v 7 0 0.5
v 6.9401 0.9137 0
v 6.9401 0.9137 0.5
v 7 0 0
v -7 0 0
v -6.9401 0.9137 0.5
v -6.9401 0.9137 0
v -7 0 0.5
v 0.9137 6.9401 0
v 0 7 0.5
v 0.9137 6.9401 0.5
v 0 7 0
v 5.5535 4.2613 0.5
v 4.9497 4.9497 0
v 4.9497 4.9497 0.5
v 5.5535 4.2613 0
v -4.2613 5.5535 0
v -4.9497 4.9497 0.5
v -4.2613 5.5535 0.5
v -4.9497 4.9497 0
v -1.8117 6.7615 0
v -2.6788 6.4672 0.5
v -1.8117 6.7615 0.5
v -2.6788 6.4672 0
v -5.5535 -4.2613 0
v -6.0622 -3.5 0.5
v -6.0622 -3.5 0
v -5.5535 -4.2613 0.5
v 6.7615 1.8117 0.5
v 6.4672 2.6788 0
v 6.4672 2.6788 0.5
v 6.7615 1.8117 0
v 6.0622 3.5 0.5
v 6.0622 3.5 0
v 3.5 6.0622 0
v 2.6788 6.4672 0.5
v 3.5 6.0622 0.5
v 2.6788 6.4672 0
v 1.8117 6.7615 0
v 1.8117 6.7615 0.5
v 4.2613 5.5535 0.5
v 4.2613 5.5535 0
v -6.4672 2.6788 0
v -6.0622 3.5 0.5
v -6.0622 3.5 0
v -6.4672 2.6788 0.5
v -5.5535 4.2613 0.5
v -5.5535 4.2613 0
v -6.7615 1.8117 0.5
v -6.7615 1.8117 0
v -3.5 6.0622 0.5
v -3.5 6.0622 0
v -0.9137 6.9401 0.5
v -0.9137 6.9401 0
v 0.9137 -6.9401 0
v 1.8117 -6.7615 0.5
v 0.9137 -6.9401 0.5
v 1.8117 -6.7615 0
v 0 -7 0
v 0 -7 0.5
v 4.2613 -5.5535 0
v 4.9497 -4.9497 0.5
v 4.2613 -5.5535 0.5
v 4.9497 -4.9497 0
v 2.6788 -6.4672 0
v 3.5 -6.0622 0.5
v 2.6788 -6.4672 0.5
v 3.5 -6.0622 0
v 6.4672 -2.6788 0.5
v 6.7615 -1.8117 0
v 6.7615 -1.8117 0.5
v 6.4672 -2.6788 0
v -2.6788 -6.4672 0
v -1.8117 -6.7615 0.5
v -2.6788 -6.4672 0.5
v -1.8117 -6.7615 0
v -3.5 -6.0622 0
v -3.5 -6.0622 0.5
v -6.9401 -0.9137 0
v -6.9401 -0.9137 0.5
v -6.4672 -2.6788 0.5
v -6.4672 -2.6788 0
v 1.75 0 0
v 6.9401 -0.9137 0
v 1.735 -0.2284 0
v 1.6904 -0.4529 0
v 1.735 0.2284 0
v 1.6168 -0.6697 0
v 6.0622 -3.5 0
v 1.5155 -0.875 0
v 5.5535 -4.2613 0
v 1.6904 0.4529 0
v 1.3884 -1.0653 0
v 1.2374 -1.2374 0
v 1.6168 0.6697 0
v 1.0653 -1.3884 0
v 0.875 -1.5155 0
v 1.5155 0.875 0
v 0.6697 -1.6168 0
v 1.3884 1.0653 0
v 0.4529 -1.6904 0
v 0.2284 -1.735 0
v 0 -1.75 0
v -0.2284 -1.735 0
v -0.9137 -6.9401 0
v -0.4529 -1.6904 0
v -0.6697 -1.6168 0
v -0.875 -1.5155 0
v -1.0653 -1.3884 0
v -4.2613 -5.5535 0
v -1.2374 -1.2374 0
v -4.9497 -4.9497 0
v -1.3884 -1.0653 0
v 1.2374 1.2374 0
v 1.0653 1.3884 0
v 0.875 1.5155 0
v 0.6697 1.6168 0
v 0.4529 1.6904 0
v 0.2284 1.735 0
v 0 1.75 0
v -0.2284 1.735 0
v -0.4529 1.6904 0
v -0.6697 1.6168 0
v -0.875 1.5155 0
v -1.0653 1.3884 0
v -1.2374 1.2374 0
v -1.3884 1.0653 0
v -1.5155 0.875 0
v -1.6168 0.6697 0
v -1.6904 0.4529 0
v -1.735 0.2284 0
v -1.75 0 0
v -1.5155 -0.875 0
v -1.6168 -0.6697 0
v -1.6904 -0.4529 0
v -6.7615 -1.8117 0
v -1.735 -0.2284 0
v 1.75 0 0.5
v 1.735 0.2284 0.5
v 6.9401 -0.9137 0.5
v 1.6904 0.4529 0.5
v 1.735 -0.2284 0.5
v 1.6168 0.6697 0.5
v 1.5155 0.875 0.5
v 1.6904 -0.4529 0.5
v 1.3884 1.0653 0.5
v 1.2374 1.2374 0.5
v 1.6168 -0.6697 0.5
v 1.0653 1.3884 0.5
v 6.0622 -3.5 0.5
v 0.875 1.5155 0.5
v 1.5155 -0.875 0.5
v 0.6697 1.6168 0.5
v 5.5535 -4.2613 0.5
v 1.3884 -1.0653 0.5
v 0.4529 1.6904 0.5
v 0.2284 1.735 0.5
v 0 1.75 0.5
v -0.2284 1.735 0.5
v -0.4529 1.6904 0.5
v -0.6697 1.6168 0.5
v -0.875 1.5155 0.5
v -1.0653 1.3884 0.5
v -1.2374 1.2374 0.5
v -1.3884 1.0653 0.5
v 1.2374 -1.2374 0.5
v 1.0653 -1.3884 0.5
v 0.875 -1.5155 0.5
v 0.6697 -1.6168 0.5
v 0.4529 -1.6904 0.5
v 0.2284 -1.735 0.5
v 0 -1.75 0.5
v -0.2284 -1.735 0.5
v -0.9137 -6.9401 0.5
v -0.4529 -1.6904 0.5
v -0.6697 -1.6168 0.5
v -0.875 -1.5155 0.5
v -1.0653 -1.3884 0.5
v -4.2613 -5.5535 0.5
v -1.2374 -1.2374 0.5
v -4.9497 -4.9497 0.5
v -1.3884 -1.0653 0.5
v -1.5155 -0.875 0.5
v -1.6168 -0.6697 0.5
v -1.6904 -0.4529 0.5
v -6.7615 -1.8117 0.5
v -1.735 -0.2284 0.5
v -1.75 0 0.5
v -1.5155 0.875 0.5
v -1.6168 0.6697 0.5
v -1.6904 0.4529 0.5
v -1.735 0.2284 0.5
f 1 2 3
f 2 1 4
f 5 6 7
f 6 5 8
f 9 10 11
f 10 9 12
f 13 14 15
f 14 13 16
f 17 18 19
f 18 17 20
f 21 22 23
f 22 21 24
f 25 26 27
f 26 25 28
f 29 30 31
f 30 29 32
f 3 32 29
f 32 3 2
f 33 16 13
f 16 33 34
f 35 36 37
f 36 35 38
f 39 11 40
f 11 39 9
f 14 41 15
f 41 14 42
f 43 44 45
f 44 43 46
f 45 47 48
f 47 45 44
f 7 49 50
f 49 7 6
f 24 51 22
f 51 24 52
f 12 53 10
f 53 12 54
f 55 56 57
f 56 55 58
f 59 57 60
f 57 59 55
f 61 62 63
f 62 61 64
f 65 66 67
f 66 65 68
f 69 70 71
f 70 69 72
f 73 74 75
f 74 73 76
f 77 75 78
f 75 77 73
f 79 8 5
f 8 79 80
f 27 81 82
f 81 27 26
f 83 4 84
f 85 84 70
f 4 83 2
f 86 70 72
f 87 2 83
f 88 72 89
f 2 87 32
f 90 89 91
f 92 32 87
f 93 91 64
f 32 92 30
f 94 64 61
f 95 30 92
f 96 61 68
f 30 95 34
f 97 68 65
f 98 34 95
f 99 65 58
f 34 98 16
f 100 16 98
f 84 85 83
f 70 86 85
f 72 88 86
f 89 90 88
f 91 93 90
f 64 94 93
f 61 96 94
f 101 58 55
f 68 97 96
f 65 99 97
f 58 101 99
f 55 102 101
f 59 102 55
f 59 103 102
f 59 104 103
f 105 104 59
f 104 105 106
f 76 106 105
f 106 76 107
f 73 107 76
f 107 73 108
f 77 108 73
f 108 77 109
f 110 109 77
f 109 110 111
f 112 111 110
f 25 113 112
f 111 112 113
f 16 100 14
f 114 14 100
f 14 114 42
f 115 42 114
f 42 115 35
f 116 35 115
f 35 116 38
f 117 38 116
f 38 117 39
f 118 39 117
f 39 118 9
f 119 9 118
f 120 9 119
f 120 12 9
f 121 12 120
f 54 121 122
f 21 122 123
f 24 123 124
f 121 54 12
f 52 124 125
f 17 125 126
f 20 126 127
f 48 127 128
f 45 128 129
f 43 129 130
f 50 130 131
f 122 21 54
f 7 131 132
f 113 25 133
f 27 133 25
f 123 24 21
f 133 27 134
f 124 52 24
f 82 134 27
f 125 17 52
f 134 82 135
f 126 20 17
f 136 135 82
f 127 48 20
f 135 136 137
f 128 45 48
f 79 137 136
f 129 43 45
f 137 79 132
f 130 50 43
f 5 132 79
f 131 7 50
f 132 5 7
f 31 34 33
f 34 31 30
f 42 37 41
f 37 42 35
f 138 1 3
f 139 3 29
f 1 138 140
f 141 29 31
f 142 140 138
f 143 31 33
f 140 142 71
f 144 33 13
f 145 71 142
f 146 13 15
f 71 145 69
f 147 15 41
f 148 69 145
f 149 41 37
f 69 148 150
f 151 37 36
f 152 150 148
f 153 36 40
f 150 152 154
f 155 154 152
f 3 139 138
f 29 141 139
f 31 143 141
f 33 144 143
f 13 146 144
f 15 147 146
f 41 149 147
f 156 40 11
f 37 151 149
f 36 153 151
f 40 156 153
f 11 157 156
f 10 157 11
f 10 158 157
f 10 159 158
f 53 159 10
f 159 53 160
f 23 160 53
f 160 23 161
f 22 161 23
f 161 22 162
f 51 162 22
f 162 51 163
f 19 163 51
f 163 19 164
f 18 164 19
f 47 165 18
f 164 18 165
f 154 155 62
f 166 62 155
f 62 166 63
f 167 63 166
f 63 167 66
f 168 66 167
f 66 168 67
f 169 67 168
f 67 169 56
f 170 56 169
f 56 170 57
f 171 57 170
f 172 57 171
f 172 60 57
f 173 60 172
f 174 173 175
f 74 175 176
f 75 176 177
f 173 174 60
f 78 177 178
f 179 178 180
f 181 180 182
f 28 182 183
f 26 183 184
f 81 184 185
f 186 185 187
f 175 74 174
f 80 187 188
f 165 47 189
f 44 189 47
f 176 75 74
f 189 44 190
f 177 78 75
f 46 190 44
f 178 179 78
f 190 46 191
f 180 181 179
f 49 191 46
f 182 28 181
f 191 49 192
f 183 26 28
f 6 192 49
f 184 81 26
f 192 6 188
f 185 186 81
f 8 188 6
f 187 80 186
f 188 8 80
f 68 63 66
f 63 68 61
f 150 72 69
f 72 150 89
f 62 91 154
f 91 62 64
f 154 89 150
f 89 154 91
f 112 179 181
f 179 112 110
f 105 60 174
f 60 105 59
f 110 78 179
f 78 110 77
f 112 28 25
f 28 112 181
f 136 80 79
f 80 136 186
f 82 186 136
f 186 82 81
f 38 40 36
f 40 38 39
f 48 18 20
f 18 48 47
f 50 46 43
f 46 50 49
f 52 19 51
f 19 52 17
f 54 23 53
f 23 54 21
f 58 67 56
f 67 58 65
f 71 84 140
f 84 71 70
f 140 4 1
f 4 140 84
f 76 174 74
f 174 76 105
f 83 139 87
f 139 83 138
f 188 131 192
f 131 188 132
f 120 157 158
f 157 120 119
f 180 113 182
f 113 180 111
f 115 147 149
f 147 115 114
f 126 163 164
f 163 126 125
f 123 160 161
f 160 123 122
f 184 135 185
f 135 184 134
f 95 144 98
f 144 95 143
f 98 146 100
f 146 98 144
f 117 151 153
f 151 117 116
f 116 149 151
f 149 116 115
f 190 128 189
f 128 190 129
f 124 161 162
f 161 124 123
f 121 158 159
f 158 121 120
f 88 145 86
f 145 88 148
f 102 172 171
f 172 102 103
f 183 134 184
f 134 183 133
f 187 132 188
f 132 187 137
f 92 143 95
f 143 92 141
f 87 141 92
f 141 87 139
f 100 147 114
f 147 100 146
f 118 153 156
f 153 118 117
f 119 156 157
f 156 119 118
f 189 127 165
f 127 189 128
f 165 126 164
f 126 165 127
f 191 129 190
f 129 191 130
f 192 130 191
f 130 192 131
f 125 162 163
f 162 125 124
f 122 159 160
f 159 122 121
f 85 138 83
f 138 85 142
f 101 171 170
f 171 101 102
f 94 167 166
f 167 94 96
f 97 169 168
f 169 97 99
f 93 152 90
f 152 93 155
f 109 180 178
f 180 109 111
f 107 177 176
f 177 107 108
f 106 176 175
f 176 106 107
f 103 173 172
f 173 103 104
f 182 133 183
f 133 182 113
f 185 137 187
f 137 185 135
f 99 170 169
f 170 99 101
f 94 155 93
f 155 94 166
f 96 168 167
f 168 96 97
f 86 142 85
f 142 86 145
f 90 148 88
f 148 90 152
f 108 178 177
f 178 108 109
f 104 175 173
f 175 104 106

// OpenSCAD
// file: parameters.scad
// =============================================================================
// Gen-BZ — nightly 2026-10-11 (physics_scorer, honest magpylib watts)
// Minimum-gap, wire-saver stator for the Gen-BX rotors: only 5.4 mm of copper (12 layers), so the magnet faces are just 8.0 mm apart and peak Bz at the copper reaches ≈0.64 T. It holds ~20 % less copper than Gen-BX (≈300 m, leaving ~90 m of the spool spare and much less winding), and loses only ≈5.5 % of the watts vs Gen-BX — the best watts-per-metre of wire tonight.
// Clocking 0 deg (magnets N facing S) + D-flat keyed bore + index notch + flip-symmetric hole map.
// Windable 2-piece bobbin; turns = physics_scorer turns_fit; copper only between flanges.
// Steel back-iron: 2× Ø168 × 4.76 mm (3/16") mild-steel discs (steel_backiron_disc.dxf); magnets sit ON the steel
// (through-pockets) -> score with --back-iron. Night 2026-10-11.
// =============================================================================
topology            = "dual_rotor";

// --- Wire / winding (physics_scorer winding-fit) -------------------------------
wire_awg            = 26;
wire_od             = 0.45;     // insulated OD mm (bare 0.405)
fill_realistic      = 0.65;     // insulated-wire area / window (DENSE layered wind with a jig; scorer cap 0.65)
turns               = 328;       // = physics_scorer turns_fit (do NOT raise)
coil_former_type    = "bobbin";
coil_core_inset     = 14.87;     // radial copper build: hub = copper boundary inset by this
wind_build_axial    = 0.0;      // nothing proud of the flanges
wind_build_radial   = 0.0;

// --- Bobbin (base + lid) ---------------------------------------------------------
coil_id_r           = 53.00;    // copper boundary sector
coil_od_r           = 88.00;
span_deg            = 26.43;    // = pitch - 2*asin((wall+0.85)/coil_id_r) -> >=1.2 mm stator web
former_web          = 5.40;     // copper height between flanges (TALL copper: steel keeps Bz up)
flange_t            = 0.80;     // >= 0.8 mm FDM wall rule (tall winds push on the flanges)
wall                = 0.80;     // flange lip beyond copper
former_bare_h       = former_web + 2 * flange_t;
coil_envelope_h     = former_bare_h + 2 * wind_build_axial;
tab_w               = 7.0;
tab_len             = 7.0;
tab_h               = former_bare_h / 2;
pin_d               = 1.9;      // 1.75 mm filament locating pin
coil_mount_r        = coil_od_r + 0.2 + 4.0;
lead_y              = 1.6;
lead_slot_w         = 0.9;
lead_groove_d       = 0.6;

// --- Gap -------------------------------------------------------------------------
run_clear           = 0.50;     // rotor face -> flange
gap_spacer_h        = run_clear + wind_build_axial;
m2m                 = coil_envelope_h + 2 * run_clear;   // rotor face to rotor face (= gap_sleeve length)

// --- Stator ----------------------------------------------------------------------
coil_stations       = 12;
bay_clear           = 0.25;
stator_thick        = former_bare_h;                        // bobbins flush both faces
stator_od           = 194;
shaft_clear_stator  = 14.0;     // stator is static; gap sleeve OD 12 spins inside

// --- Rotor(s) --------------------------------------------------------------------
magnet_Br           = 1.43;     // N52
magnet_d_large      = 20.0;
magnet_h_large      = 5.0;      // one O20x5 per pocket
magnet_h_small      = 5.0;      // unused: no O5 pockets in this kit
halbach_magnetisation = "none";  // NO O5 assist magnets in this kit (scan: they lower the 4-pole score)
rotor_b_same_axis   = true;     // same-index magnets share one axis: N faces S across the gap
large_pocket_d      = 20.3;
small_pocket_d      = 5.3;
pocket_h            = 5.00;     // THROUGH the carrier: magnet back face sits on the steel disc (FLUSH seat: carrier = magnet height, magnet face level with the rotor face)
large_n             = 8;
R_large             = 71.0;
small_r_list        = [];       // no O5 pockets
carrier_od          = 168.0;
carrier_thick       = pocket_h;
hub_h               = 12.0;     // > steel_t + insert: radial set-screw clears the steel
hub_od              = 24.0;     // slim hub so the M4 brace rods fit at R~18 inside the coil ring
hub_insert_d        = 4.0;      // M3 heat-set insert, radial, bears on the D-flat
rotor_b_offset_deg  = 0.0;      // CLOCKING: magnets directly opposite
shaft_key           = "dflat";
dflat_depth         = 0.5;      // 8 mm shaft with 0.5 mm flat (7.5 across flat)
index_notch_d       = 3.0;

// --- Steel back-iron (buyable laser-cut) -------------------------------------------
steel_t             = 4.76;      // mild steel thickness (image method ignores it; sized from steel_flux.py so the return path stays well below saturation)
steel_center_hole   = 26.0;     // slips over the rotor hub (OD 24)
steel_od            = carrier_od;   // steel disc OD = rotor carrier OD

// --- Modular MAX interface ----------------------------------------------------------
shaft_bore          = 8.35;
dflat_x             = 4.0 - dflat_depth + (shaft_bore - 8.0) / 2;
bearing_d           = 21.85;
bearing_h           = 7.2;
m3_clear            = 3.5;
bolt_r_inner        = 30.0;     // M3 steel-disc clamp bolts (inside the magnet ring)
bolt_n_inner        = 4;
bolt_inner_angles   = [0, 90, 180, 270];
bolt_r_outer        = 44.0;     // second M3 steel-disc clamp ring
bolt_outer_angles   = [67.5, 112.5, 247.5, 292.5];
flange_bolt_r       = 91.5;     // frame rods: OUTSIDE the rotor OD (rotors spin inside them)
flange_bolt_n       = 4;
flange_bolt_offset  = 45.00;    // between coil stations -> never cuts a lead groove/tab
brace_r             = 18.0;
brace_d             = 4.3;      // temporary M4 jack rods (assembly only)
brace_n             = 4;
brace_angles        = [45, 135, 225, 315];          // flip-symmetric

spacer_pad_od       = 14.0;
spacer_pad_id       = m3_clear;
endbell_od          = 193.0;
endbell_thick       = 8.0;
endbell_shaft_clear = 10.0;
collar_h            = 10.0;
standoff_od         = 9.0;
frame_standoff_h    = run_clear + carrier_thick + hub_h + collar_h + 2.0;
sleeve_od           = 12.0;
plate_max_mm        = 410;

$fn = 64;
// main file
// Gen-BZ — assembly gap shim, h = run_clear (rotor face -> flange); copper is inside the flanges
include <parameters.scad>;
$fn = 48;
difference() {
    cylinder(d=spacer_pad_od, h=gap_spacer_h);
    translate([0, 0, -0.1]) cylinder(d=spacer_pad_id, h=gap_spacer_h + 0.2);
}
